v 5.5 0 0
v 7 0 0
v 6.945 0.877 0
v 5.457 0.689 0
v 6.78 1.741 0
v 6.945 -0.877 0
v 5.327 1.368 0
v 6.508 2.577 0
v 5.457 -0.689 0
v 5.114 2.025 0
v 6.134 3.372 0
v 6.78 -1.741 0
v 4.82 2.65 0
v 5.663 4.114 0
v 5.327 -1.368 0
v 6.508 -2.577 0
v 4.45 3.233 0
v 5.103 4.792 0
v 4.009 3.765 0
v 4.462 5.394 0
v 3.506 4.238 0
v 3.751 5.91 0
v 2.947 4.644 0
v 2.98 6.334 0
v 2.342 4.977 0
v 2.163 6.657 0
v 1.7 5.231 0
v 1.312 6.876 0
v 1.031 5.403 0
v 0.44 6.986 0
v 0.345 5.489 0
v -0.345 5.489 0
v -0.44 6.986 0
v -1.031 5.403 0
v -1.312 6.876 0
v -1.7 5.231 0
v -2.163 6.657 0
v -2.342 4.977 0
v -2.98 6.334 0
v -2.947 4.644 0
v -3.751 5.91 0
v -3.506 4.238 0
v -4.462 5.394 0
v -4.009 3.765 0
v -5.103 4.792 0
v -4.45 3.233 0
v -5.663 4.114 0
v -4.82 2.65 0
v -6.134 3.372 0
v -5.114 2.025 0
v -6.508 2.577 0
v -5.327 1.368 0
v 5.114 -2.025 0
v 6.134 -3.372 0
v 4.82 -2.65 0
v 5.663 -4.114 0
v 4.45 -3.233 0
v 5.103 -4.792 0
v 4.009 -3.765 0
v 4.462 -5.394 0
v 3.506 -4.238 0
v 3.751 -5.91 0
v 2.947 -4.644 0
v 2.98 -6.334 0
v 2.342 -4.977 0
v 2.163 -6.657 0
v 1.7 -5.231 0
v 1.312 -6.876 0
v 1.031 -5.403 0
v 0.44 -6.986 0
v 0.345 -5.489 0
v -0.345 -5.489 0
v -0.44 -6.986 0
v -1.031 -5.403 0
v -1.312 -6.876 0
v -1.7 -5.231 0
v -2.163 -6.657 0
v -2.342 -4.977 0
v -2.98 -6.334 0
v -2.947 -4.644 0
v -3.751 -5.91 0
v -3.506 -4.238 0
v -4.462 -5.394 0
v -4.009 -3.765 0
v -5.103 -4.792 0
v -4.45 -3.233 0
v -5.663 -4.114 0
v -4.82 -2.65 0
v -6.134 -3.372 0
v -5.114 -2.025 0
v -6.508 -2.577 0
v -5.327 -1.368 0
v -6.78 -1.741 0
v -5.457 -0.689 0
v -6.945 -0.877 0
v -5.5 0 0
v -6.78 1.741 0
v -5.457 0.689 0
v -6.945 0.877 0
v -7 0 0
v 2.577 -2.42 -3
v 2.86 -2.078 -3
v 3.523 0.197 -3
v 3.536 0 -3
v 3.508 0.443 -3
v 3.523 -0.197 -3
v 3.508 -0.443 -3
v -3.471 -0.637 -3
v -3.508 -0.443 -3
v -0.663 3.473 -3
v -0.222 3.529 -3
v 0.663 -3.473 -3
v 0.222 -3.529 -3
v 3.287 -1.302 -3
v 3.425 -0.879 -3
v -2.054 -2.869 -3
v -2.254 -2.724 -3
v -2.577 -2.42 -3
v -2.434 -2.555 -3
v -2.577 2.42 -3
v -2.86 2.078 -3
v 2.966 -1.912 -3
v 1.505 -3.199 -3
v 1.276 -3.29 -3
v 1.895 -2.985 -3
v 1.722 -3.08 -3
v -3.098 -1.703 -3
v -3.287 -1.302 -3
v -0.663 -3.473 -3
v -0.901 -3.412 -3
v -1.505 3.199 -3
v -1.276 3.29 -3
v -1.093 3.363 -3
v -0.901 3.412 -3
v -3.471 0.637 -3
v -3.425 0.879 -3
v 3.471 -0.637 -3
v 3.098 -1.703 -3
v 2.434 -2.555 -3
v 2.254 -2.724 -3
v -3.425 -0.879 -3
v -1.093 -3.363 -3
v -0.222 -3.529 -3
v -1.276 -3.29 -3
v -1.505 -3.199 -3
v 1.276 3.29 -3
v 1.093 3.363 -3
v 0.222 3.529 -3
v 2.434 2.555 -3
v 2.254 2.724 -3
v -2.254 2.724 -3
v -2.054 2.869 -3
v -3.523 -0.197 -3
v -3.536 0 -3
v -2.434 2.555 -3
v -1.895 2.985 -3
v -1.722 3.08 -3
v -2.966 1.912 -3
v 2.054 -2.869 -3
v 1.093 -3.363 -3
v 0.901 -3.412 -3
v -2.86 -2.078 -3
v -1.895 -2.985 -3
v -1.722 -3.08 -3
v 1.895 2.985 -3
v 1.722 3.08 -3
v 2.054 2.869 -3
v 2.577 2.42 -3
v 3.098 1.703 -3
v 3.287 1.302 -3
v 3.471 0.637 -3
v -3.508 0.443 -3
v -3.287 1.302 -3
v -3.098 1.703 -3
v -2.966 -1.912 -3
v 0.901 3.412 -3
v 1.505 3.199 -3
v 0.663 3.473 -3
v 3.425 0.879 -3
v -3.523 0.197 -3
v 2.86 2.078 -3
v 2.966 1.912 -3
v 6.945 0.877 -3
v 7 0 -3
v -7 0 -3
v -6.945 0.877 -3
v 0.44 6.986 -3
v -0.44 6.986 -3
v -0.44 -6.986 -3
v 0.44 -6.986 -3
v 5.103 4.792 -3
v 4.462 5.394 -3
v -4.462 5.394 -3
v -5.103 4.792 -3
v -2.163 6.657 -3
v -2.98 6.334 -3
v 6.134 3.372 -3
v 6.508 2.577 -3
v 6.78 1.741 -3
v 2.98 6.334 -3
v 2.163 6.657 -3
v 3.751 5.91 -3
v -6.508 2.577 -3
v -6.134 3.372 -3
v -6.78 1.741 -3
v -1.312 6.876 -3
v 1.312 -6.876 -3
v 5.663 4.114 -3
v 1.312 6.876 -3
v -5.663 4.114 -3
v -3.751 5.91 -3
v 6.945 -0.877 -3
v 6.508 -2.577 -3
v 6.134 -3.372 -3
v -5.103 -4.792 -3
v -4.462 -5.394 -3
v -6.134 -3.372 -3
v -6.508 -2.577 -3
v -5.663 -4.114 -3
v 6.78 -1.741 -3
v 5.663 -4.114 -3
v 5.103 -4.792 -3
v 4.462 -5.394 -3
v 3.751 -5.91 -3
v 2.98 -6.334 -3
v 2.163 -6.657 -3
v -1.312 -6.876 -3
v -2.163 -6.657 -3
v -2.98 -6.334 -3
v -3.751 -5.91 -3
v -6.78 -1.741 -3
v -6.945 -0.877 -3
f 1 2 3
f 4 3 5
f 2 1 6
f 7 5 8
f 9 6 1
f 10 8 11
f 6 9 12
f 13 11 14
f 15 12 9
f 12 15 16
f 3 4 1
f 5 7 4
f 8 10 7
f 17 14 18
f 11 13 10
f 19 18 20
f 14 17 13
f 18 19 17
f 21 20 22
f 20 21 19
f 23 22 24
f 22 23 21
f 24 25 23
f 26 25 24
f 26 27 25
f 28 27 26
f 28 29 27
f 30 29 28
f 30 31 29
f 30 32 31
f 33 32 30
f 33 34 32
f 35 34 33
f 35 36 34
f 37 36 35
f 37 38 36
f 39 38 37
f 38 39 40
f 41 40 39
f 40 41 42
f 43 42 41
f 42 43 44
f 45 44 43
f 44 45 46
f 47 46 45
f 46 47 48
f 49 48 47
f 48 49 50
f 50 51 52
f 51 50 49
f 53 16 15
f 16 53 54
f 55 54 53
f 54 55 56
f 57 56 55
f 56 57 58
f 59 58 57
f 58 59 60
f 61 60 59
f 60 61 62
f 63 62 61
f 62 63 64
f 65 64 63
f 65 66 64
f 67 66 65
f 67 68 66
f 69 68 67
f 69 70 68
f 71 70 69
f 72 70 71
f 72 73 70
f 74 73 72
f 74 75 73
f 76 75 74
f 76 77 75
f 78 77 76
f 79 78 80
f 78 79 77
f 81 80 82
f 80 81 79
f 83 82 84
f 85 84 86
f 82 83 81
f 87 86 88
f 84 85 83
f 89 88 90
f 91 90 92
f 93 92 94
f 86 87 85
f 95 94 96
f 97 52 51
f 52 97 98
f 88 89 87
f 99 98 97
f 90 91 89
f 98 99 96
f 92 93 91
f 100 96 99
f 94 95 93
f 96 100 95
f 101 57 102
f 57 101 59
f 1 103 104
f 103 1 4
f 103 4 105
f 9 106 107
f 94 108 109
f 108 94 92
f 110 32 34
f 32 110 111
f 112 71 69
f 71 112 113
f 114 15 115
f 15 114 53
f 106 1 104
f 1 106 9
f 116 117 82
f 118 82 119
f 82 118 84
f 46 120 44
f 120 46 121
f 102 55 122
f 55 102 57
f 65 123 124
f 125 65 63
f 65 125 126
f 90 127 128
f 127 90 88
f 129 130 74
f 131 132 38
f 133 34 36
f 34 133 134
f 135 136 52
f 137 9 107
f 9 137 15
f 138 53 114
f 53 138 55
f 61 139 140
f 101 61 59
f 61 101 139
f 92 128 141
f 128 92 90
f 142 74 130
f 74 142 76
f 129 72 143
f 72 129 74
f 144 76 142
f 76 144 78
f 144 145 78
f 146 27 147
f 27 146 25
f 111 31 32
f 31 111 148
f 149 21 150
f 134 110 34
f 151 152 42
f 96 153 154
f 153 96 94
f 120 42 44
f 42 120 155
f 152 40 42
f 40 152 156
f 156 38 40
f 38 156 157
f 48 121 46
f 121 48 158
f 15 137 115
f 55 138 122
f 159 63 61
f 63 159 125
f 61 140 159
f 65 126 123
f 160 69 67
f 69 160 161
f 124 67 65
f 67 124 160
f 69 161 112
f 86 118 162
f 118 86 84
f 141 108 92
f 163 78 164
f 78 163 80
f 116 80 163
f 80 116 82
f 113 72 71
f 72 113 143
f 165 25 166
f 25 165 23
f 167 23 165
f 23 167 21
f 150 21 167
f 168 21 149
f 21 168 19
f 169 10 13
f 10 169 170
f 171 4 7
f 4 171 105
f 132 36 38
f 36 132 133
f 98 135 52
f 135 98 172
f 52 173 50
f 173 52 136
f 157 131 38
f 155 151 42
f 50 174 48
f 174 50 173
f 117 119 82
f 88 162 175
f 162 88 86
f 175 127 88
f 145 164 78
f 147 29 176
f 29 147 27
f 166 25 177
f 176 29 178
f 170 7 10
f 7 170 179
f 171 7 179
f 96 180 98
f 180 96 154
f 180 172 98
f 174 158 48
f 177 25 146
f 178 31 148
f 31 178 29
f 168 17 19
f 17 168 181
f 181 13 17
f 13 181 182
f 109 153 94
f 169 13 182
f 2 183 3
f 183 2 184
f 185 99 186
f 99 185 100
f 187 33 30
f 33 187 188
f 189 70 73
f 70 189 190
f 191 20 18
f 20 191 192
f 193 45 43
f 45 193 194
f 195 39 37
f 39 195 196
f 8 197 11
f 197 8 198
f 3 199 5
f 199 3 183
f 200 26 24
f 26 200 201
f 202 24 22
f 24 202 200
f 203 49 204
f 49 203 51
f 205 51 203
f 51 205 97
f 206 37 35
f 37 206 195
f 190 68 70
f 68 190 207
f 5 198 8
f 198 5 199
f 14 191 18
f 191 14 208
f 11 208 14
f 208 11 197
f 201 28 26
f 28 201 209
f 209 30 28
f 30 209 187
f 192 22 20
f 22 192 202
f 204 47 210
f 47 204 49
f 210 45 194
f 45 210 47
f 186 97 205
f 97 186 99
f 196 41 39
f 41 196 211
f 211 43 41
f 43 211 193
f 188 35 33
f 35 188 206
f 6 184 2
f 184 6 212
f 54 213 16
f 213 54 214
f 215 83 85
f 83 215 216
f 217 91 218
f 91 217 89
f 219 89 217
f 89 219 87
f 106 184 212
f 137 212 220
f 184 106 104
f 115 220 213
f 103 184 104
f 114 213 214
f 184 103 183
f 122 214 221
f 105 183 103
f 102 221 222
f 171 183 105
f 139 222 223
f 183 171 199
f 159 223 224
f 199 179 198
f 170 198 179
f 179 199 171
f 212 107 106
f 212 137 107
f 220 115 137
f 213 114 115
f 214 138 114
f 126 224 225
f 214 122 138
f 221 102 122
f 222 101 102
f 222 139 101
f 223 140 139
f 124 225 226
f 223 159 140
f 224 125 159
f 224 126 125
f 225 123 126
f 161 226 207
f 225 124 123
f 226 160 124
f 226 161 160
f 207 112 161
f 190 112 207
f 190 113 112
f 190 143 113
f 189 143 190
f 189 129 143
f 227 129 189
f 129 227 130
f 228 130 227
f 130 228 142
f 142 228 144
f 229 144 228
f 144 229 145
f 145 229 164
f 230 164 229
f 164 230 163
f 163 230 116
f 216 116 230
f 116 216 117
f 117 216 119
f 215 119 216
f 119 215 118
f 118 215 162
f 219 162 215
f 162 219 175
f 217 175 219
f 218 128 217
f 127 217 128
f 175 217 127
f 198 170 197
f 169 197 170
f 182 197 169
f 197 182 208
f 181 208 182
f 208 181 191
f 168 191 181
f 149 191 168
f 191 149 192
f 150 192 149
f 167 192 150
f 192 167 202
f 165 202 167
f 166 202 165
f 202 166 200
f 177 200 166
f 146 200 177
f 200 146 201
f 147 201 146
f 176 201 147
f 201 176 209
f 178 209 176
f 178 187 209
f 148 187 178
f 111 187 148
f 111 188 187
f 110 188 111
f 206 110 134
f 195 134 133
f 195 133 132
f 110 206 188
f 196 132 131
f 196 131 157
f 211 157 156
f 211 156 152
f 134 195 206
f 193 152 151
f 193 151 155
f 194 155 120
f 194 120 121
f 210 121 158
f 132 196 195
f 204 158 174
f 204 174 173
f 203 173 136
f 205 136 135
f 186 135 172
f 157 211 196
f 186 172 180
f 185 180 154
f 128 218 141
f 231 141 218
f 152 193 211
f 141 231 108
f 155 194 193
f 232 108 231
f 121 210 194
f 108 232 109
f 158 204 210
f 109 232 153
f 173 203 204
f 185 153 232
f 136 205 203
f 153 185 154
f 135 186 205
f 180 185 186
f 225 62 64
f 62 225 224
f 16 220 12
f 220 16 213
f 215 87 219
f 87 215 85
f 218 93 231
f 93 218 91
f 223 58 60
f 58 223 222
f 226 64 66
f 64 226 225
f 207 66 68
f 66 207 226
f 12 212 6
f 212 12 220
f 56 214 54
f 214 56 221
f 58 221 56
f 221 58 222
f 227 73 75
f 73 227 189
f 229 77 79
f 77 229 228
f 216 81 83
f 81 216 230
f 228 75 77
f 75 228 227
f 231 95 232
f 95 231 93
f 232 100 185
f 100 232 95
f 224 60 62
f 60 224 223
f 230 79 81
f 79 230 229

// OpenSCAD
$fn = 50;


difference() {
	union() {
		translate(v = [0, 0, -3.0000000000]) {
			cylinder(h = 3, r = 7.0000000000);
		}
	}
	union() {
		translate(v = [0, 0, 0]) {
			rotate(a = [0, 0, 0]) {
				difference() {
					union() {
						#translate(v = [0, 0, -3.0000000000]) {
							cylinder(h = 3, r = 2.2500000000);
						}
						#translate(v = [0, 0, -4.2000000000]) {
							cylinder(h = 4.2000000000, r1 = 2.7500000000, r2 = 5.5000000000);
						}
						#translate(v = [0, 0, -3.0000000000]) {
							cylinder(h = 3, r = 2.7500000000);
						}
						#translate(v = [0, 0, -3.0000000000]) {
							cylinder(h = 3, r = 2.2500000000);
						}
					}
					union();
				}
			}
		}
	}
}
